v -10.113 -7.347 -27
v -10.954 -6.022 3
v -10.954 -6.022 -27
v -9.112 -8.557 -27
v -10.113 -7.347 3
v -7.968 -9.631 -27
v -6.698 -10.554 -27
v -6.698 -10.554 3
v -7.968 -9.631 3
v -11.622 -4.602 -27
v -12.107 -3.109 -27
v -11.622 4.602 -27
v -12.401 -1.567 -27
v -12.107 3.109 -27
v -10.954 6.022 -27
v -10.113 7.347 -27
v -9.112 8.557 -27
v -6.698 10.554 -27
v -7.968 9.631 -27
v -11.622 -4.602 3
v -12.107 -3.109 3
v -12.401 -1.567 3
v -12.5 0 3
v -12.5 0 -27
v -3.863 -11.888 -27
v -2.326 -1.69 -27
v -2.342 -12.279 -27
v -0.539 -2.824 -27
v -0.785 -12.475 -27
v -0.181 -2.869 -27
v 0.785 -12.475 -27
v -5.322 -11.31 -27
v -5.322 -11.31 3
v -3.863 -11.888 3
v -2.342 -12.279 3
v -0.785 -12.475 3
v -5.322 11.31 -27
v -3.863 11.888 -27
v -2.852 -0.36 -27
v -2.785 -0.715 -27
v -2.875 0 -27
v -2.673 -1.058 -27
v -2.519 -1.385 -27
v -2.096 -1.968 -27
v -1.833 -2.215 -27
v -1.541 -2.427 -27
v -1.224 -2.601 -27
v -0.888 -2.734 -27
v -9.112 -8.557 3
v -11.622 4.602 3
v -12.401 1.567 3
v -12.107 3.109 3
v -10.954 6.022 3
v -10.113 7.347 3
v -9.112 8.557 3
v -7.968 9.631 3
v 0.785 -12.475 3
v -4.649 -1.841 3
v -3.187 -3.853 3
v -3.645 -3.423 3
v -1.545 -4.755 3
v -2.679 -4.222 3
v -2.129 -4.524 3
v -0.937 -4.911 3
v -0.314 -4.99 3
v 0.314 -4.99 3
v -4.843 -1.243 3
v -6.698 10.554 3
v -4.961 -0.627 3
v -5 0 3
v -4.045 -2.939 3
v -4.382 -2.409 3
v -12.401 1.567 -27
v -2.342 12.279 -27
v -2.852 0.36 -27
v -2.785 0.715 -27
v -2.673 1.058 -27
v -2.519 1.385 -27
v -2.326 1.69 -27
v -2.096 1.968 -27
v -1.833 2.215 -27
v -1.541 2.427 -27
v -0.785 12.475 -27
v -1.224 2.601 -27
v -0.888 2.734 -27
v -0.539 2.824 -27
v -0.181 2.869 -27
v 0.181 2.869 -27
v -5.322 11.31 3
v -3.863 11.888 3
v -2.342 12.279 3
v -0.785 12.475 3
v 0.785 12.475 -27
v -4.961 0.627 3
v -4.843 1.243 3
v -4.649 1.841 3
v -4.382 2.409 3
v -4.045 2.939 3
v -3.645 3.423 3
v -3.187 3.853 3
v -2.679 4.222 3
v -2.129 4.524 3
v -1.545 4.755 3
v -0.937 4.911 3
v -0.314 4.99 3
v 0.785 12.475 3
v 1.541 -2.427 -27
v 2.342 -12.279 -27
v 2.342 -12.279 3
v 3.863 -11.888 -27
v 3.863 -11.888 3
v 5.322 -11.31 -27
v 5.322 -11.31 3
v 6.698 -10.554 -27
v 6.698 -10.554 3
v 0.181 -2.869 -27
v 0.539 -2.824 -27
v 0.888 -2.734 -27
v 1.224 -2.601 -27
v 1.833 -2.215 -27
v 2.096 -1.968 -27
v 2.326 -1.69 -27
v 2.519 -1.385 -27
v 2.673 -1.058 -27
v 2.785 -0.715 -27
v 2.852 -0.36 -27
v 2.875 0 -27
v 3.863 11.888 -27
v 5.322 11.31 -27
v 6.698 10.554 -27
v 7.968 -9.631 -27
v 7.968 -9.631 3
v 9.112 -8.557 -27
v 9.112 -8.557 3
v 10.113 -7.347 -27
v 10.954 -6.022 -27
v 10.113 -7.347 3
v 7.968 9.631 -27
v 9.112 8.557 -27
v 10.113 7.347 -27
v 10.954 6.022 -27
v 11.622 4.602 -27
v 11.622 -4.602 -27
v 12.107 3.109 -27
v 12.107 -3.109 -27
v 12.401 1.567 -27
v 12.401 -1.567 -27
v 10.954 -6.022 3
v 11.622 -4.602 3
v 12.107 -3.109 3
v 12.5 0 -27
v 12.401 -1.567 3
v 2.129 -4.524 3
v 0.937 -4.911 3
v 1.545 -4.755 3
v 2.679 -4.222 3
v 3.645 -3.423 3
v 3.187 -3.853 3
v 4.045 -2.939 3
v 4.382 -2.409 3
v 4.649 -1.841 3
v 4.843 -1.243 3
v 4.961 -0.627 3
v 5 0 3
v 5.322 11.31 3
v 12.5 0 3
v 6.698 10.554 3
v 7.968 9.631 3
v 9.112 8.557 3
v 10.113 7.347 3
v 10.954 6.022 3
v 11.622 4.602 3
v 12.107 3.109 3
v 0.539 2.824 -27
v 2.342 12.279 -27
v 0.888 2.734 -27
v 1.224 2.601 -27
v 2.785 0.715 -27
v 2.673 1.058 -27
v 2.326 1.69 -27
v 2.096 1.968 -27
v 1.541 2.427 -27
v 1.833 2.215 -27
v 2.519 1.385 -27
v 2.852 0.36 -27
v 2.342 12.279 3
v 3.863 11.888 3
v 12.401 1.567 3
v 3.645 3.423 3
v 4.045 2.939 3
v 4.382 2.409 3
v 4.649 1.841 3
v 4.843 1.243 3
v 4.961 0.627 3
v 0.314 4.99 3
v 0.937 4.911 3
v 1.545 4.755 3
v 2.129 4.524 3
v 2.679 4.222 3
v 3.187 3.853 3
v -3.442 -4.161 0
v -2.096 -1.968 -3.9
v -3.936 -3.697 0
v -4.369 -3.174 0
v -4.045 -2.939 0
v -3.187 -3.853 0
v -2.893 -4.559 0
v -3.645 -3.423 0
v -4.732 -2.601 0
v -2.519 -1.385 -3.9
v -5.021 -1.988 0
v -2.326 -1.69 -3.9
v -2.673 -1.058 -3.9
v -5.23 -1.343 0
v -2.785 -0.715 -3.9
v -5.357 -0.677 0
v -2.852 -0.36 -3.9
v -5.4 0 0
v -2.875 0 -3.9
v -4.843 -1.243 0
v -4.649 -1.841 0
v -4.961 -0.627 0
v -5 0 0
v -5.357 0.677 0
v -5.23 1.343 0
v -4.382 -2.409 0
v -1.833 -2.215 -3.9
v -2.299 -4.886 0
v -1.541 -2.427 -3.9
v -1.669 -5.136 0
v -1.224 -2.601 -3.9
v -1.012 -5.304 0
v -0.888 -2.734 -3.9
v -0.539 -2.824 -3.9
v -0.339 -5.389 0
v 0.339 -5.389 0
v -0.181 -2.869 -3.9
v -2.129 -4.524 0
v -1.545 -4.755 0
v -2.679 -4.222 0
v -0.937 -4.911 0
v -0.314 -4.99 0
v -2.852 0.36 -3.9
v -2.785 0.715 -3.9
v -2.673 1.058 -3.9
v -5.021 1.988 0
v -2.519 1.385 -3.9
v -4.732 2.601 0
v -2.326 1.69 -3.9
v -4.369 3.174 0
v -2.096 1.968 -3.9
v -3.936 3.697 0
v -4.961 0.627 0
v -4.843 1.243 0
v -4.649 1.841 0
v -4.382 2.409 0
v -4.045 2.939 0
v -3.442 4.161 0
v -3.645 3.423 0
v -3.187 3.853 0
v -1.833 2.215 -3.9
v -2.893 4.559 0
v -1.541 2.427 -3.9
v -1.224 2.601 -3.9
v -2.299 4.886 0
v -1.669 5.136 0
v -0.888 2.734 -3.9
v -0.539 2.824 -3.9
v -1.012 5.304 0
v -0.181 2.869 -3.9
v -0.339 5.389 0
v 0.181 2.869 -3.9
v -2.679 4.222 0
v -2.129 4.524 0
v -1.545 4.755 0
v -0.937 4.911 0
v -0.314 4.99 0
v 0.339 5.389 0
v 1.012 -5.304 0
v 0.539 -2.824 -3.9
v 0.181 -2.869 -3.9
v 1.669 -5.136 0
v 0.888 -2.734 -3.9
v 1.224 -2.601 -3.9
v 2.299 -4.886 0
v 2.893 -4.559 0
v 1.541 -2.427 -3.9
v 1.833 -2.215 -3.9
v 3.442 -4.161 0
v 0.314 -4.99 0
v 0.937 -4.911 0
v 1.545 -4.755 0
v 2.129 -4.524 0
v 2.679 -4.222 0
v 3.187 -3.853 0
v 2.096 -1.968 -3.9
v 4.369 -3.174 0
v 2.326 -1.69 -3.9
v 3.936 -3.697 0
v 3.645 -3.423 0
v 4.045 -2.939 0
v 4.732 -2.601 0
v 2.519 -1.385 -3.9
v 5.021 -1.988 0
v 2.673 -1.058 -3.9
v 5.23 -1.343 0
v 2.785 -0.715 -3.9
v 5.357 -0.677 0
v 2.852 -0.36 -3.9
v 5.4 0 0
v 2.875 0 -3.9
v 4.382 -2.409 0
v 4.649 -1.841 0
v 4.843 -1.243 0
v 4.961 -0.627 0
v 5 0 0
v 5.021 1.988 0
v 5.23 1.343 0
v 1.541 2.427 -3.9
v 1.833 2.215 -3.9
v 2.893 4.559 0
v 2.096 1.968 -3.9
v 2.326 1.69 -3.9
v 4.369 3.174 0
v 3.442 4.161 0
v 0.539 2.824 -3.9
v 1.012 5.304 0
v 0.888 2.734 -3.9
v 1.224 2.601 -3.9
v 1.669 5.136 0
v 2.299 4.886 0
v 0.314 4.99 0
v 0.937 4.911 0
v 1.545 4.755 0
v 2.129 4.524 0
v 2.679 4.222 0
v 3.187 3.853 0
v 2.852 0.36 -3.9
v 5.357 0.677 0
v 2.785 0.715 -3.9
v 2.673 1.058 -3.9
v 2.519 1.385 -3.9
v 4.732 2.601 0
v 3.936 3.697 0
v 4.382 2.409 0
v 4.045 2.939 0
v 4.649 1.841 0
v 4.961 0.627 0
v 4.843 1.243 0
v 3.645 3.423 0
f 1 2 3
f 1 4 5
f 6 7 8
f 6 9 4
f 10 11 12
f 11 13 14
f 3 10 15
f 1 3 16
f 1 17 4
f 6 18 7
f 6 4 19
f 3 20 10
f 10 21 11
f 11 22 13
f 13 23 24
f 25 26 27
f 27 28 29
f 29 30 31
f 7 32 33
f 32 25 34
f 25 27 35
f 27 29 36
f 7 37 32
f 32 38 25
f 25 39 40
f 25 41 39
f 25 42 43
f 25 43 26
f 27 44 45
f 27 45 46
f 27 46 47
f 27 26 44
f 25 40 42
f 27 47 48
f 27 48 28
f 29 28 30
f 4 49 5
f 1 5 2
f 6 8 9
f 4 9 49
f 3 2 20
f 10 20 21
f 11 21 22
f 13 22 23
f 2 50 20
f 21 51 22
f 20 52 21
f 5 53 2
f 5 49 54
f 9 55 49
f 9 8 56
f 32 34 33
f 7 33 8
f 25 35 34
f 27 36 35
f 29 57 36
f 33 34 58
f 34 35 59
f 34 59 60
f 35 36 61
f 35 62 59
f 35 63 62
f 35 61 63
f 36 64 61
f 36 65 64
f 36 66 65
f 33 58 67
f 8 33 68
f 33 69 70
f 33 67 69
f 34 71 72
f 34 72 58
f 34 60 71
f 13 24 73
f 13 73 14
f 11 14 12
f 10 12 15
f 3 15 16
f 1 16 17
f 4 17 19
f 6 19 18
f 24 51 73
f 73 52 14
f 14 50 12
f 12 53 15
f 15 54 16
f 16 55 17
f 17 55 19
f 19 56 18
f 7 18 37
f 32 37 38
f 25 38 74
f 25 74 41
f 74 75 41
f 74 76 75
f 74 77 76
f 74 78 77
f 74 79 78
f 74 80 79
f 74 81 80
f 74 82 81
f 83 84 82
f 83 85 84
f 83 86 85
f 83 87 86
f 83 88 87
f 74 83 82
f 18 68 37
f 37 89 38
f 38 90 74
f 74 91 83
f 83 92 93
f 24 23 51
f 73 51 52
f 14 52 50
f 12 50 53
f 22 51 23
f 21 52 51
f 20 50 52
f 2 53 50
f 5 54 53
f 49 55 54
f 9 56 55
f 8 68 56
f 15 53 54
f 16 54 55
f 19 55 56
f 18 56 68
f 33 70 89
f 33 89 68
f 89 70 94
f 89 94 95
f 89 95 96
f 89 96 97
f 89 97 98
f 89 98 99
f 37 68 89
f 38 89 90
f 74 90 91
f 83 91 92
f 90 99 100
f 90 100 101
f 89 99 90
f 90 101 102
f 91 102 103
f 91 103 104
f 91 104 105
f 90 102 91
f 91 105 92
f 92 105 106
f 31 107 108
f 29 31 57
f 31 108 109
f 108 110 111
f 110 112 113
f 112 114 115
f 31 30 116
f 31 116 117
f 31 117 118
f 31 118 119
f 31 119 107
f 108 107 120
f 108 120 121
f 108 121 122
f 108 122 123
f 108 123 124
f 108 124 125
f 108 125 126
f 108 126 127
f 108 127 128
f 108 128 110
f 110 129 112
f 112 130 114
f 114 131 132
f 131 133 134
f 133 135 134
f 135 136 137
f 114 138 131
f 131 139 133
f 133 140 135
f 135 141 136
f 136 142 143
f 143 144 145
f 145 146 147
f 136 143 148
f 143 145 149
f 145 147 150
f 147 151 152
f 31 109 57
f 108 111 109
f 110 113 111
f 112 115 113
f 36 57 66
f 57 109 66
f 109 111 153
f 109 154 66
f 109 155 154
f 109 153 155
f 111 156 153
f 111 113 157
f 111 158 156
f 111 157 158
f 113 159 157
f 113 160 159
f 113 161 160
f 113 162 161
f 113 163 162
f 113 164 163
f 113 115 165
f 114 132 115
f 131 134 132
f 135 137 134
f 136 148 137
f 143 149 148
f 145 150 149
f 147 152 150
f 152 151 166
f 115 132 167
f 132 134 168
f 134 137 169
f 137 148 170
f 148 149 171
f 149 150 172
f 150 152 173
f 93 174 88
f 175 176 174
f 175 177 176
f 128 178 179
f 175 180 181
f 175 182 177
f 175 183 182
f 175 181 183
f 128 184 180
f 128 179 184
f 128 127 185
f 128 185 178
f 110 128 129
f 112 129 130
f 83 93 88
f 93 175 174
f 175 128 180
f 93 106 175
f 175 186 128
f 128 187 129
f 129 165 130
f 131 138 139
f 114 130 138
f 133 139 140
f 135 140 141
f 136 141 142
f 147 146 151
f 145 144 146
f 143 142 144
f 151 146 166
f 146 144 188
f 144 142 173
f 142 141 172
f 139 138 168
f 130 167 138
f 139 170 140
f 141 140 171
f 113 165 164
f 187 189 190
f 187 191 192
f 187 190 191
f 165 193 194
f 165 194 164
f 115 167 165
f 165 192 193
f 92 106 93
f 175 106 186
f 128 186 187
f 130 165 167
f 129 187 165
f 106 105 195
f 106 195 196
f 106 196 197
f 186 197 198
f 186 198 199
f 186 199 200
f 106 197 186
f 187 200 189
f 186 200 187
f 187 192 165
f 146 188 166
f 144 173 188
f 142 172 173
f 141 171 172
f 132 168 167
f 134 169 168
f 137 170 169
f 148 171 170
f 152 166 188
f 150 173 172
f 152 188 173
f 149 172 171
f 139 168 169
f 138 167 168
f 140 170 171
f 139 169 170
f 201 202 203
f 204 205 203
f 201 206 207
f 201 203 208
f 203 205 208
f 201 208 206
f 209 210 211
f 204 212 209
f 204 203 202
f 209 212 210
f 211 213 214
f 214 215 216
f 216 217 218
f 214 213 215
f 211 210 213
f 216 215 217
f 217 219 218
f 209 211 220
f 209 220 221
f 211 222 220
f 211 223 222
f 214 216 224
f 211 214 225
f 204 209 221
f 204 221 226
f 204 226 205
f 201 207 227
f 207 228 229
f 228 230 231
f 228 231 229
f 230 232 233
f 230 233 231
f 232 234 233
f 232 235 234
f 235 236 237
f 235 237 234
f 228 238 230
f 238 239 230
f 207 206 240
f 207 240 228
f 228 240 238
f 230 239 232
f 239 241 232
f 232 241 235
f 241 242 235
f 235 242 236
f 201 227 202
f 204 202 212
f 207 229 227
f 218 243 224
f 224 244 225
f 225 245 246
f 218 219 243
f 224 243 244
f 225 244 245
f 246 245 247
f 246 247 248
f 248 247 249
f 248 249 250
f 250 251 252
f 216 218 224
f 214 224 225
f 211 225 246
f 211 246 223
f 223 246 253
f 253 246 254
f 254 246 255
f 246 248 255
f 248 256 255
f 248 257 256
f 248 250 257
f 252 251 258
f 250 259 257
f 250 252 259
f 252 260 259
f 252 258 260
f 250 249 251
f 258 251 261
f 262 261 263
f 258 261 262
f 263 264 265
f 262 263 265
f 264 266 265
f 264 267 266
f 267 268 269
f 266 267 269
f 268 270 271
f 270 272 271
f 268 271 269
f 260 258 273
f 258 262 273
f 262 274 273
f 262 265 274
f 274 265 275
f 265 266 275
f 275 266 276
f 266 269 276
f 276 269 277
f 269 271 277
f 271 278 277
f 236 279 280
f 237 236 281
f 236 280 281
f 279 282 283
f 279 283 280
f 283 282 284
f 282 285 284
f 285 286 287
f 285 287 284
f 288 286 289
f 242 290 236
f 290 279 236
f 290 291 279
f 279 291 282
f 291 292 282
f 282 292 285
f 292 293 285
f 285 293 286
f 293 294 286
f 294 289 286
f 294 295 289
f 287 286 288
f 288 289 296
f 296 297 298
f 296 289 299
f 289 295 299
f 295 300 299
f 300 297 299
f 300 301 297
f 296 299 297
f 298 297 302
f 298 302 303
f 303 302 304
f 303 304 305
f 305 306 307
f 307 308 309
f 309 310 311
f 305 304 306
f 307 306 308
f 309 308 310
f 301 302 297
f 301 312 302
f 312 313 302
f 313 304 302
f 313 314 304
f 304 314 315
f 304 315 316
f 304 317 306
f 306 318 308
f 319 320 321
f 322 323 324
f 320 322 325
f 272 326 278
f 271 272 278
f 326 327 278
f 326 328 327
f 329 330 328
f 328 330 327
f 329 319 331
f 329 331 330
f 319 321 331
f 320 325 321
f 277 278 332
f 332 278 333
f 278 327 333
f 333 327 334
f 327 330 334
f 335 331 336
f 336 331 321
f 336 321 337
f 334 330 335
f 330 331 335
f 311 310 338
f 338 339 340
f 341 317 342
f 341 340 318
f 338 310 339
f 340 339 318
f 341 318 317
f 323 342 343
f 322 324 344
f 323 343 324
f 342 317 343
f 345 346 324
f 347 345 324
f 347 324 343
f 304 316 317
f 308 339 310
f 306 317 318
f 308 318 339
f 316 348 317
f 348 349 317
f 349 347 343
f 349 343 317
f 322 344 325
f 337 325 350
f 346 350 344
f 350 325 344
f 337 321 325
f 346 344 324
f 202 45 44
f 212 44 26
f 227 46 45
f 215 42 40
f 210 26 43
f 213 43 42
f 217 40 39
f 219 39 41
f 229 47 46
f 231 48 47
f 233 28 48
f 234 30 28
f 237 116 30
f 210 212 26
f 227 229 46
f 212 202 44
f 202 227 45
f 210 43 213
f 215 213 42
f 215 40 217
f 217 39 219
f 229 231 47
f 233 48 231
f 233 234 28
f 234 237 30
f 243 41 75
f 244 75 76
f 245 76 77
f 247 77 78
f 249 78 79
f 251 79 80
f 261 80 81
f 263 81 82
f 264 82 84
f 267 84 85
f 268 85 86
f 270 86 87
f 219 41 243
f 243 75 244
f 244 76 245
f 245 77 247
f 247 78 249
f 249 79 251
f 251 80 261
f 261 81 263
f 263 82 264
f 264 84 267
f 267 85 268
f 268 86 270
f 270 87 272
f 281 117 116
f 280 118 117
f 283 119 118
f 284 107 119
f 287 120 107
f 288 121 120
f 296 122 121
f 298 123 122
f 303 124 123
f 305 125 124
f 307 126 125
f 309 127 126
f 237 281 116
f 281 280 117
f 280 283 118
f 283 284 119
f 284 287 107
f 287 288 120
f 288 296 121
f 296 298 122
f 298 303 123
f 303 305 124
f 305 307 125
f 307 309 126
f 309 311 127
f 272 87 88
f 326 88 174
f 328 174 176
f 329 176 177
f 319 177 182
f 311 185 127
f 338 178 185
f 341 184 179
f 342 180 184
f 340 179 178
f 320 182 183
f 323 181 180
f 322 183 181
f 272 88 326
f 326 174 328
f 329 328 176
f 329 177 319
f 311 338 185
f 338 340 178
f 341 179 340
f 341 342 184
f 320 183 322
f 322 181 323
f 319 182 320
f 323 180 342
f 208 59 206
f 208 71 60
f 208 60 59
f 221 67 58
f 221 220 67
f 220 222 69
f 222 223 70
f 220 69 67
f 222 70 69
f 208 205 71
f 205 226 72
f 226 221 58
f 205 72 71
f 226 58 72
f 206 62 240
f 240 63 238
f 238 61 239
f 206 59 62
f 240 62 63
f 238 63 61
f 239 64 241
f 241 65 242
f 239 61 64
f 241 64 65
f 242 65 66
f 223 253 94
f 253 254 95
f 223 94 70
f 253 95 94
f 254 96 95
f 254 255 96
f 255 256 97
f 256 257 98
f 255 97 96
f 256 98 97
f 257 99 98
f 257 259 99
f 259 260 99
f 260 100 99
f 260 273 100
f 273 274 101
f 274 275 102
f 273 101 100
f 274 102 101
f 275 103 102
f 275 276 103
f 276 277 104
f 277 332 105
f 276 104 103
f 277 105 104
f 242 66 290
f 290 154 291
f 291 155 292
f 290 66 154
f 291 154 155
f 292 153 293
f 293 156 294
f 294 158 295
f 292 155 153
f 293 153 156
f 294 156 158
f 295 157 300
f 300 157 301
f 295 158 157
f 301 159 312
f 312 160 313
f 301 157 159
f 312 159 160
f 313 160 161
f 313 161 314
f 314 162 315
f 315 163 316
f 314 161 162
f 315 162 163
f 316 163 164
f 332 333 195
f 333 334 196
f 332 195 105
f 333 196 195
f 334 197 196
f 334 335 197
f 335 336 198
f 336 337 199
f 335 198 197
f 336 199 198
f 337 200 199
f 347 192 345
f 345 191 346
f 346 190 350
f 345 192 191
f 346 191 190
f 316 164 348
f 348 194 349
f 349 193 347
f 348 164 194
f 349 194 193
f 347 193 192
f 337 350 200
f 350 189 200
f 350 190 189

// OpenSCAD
$fn = 50;


difference() {
	union() {
		translate(v = [0, 0, -27.0000000000]) {
			cylinder(h = 30, r = 12.5000000000);
		}
		#translate(v = [0, 0, -30.0000000000]) {
			cylinder(h = 30, r = 2.8750000000);
		}
	}
	union() {
		translate(v = [0, 0, 0]) {
			rotate(a = [0, 0, 0]) {
				difference() {
					union() {
						translate(v = [0, 0, -30.0000000000]) {
							cylinder(h = 30, r = 2.6000000000);
						}
						translate(v = [0, 0, -3.9000000000]) {
							cylinder(h = 3.9000000000, r1 = 2.8750000000, r2 = 5.4000000000);
						}
						translate(v = [0, 0, -30.0000000000]) {
							cylinder(h = 30, r = 2.8750000000);
						}
						translate(v = [0, 0, -30.0000000000]) {
							cylinder(h = 30, r = 2.6000000000);
						}
					}
					union();
				}
			}
		}
		#cylinder(h = 3, r = 5.0000000000);
	}
}
